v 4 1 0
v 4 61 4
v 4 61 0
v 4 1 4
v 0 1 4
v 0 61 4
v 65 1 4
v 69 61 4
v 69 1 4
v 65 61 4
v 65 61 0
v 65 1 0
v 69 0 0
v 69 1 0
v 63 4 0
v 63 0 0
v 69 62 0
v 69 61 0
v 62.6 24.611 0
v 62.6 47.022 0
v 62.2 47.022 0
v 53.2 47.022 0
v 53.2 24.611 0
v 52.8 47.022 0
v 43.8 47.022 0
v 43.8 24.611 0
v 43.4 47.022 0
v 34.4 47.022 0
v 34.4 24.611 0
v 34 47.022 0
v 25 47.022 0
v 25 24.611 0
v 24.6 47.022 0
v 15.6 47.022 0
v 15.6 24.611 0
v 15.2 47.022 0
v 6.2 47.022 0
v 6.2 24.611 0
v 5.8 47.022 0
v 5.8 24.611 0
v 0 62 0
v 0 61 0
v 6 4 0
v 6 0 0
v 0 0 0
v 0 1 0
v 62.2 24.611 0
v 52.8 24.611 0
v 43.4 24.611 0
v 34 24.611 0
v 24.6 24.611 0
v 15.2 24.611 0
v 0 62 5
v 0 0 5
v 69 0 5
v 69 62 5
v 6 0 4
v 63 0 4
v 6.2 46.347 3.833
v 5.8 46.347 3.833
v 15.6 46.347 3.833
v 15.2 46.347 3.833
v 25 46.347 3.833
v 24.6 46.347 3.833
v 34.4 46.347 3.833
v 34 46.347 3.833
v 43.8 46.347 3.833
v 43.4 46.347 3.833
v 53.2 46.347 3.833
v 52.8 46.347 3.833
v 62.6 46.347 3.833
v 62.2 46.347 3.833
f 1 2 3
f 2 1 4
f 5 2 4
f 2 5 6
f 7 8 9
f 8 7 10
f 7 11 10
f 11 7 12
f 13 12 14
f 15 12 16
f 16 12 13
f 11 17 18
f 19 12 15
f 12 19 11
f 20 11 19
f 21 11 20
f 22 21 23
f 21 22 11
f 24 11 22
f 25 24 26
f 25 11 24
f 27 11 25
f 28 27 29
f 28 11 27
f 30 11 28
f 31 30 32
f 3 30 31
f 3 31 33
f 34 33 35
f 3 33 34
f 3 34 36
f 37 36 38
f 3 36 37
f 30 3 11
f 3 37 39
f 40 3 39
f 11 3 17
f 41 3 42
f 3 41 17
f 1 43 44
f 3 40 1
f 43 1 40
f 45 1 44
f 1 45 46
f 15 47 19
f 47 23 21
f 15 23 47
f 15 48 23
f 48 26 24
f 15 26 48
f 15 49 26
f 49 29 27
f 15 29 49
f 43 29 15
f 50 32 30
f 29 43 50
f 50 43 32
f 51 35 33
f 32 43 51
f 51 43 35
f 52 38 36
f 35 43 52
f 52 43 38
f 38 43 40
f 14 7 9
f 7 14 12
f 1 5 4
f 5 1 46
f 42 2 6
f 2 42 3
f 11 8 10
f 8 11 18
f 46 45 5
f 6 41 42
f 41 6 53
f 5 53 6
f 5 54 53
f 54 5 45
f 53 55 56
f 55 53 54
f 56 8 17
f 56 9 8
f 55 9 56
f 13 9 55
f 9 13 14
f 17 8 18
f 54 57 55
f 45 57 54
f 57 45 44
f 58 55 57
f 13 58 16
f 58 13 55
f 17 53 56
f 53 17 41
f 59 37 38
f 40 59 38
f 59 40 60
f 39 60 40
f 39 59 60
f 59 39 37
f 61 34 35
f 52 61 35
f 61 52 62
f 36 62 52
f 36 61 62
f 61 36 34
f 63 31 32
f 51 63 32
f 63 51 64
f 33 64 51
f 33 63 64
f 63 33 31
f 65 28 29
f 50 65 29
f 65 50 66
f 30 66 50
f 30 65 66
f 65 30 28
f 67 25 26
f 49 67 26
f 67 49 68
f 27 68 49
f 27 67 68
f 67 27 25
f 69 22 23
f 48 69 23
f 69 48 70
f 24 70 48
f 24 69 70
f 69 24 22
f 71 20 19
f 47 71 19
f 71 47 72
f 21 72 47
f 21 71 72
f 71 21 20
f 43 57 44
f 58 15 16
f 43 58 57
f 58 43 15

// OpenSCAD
// file: libspeaker.scad
//libspeaker
libversion = "0.0.1";
echo("Using libspeaker version: ", libversion);
module mounting_holes(speaker_num_holes, speaker_hole_d, screw_d, box_thick){
    for ( i = [0 : speaker_num_holes] ){
        rotate([0,360/speaker_num_holes*i,0])
            translate([speaker_hole_d/2,0,0])
                rotate([90,0,0])
                    cylinder(d=screw_d, h=box_thick);
    }
}


module screw_form(screw_d, screwhead_d, screwhead_h, box_thick){
    union(){
        cylinder(d=screw_d, h=box_thick);
        cylinder(d=screwhead_d+1, h=screwhead_h);
    }
}

module speaker_cutout(speaker_cutout_d, speaker_flange_d, speaker_flange_h, box_thick){
    translate([0,speaker_flange_h-box_thick,0])rotate([90,0,0])
        cylinder(d=speaker_flange_d, h=speaker_flange_h);
    rotate([90,0,0])
        cylinder(d=speaker_cutout_d, h=box_thick);
}

module screw_cutout(screw_d, screw_l, screwhead_h, nut_d, nut_thick, box_thick, bevel_depth, full_slot = true){
    hex_size = 2 * nut_d/sqrt(3);
    union(){
        //screw cutout
        translate([0,0,0])
            cylinder(d=screw_d, h=screw_l-(box_thick-bevel_depth-screwhead_h)+1);
        //screw slot
        if (full_slot) {
        translate([0,-screw_d/2,0])
            cube([box_thick/2,screw_d,screw_l/4+nut_thick]);
        }
        //nut slot
        translate([0,-nut_d/2,screw_l/4])
            #cube([box_thick/2,nut_d,nut_thick]);
        //nut cutout
        translate([0,0,screw_l/4])
            cylinder(d=hex_size, h=nut_thick,$fn=6);
    }
}

module bevel(box_width, box_height, wall_thick, bevel_depth) {
    difference() {
        cube([box_width, box_height, bevel_depth]);
        translate([wall_thick/2, wall_thick/2, 0])
            cube([box_width-wall_thick, box_height-wall_thick, bevel_depth]);
    }
}

module speaker_volume(height, width, depth) {
    echo("Enclosure volume: ", height*width*depth/1000000, " liters");
}
// main file
// Parametric Film Sliter
// 2021 Logan E Brown
// <thinkbrown@96west.net>

// Entirely for screwform stuff
use <libspeaker.scad>;
$fn=64;
// fairly arbitrary, 
// length should probably be at least film width to keep things in line
// height was randomly chosen, changing it will likely require adjusting the blade angle
slitter_height = 30;
slitter_length = 60;
wall_thickness = 4;
// Definition for screw/nut dimensions
m4_clearance_d = 4.5;
m4_head_clearance_d = 7;
m4_head_clearance_h = 4;
m4_nut_d = 7.1;
m4_nut_h = 4.5;
// math for nut holes.
m4_nut_flats = 2 * m4_nut_d/sqrt(3);
// Definition for blade dimensions
// Note that a safety razor blade is actually about 0.15mm thick,
// but we need enough space to slide it in and then apply pressure.
blade_thickness = 0.4;
blade_height = 22;
blade_width = 43;
blade_angle = 10;
// offset of the mounting holes in the blade.
// This model assumes the blade is symmetrical and both mounting
// holes are on center line
blade_hole = 9;
blade_offset = blade_height*sin(blade_angle);
film_thickness = 0.7;
clip_thickness = 1;

//16mm cuts
16mm_to_minox = [6.6];
16mm_width = 16;
//35mm cuts
35mm_to_16_and_minox = [4.8, 20.8, 30.2];
35mm_to_minox = [8.1, 17.5, 26.9];
35mm_width = 35;
//120 cuts
120_to_16_and_minox = [2, 18, 34, 50, 59.4];
120_to_minox = [2, 11.4, 20.8, 30.2, 39.6, 49, 58.4];
120_width = 61;

// For slitting 16mm film to minox (approx 9.4mm) - TESTED
//plate(16mm_width, 16mm_to_minox);
// For slitting 35mm film to 16mm and minox - TESTED
//plate(35mm_width, 35mm_to_16_and_minox);
// For slitting 35mm film to minox
//plate(35mm_width, 35mm_to_minox);

// For slitting 120 film to 3 16mm strips and a minox strip. Waste not, want not.
//plate(120_width, 120_to_16_and_minox);
// for slitting 120 film to no less than 6 strips of minox
//plate(120_width, 120_to_minox);

cap(120_width, 120_to_minox);

module plate(film_width, widths){
    slitter(film_width, widths);
    translate([film_width+2*wall_thickness+20,0,0])
        cap(film_width, widths);
}

module slitter(film_width, widths){
    slitter_width = film_width+2*wall_thickness;
    difference(){
        cube([film_width+2*wall_thickness, slitter_length, slitter_height]);
        translate([wall_thickness, 0, slitter_height-wall_thickness-film_thickness])
            cube([film_width, slitter_length, wall_thickness+film_thickness]);
        for (width = widths){
            translate([wall_thickness+width-blade_thickness/2,wall_thickness,0])
                hull(){
                    translate([0,sin(blade_angle)*blade_height,0])
                        rotate([blade_angle,0,0])
                            #cube([blade_thickness, blade_width, blade_height]);
                    translate([0,sin(blade_angle)*(blade_height+(sin(blade_angle)*blade_width)),-sin(blade_angle)*blade_width])
                        rotate([blade_angle,0,0])
                            cube([blade_thickness, blade_width, sin(blade_angle)*blade_width]);
                }
                translate([wall_thickness+width,0,0])
                    cube([blade_thickness, blade_width, blade_height]);
        }
        rotate([blade_angle,0,0])
            translate([0, blade_hole+sin(blade_angle)*blade_width, blade_height/2])
                rotate([0,90,0])
                    union(){
                        screw_form(m4_clearance_d, m4_head_clearance_d, m4_head_clearance_h, slitter_width);
                        #translate([0,0,slitter_width-m4_nut_h])
                            cylinder(d=m4_nut_flats, h=m4_nut_h, $fn=6);
                    }
        rotate([blade_angle,0,0])
            translate([0, blade_width-blade_hole+sin(blade_angle)*blade_width, blade_height/2])
                rotate([0,90,0])
                    union(){
                        screw_form(m4_clearance_d, m4_head_clearance_d, m4_head_clearance_h, slitter_width);
                        #translate([0,0,slitter_width-m4_nut_h])
                            cylinder(d=m4_nut_flats, h=m4_nut_h, $fn=6);
                    }
    }
}

module cap(film_width, widths){
    slitter_width = film_width+2*wall_thickness;
    difference(){
        union(){
            translate([wall_thickness,clip_thickness,0])
                cube([film_width, slitter_length, wall_thickness]);
            translate([0,clip_thickness,wall_thickness])
                cube([film_width+2*wall_thickness, slitter_length, 1]);
            cube([film_width+2*wall_thickness,clip_thickness,wall_thickness+clip_thickness]);
            translate([0,slitter_length+clip_thickness,0])
                cube([film_width+2*wall_thickness,clip_thickness,wall_thickness+clip_thickness]);
        }
        translate([3*wall_thickness/2,0,-wall_thickness])
            rotate([45,0,0])
                cube([film_width-wall_thickness, wall_thickness*sqrt(2), wall_thickness*sqrt(2)]);
        translate([wall_thickness, 0, slitter_height-wall_thickness-film_thickness])
            cube([film_width, slitter_length, wall_thickness+film_thickness]);
        for (width = widths){
            translate([wall_thickness+width-blade_thickness/2,wall_thickness,-slitter_height+film_thickness+wall_thickness])
                translate([0,sin(blade_angle)*blade_height,0])
                    rotate([blade_angle,0,0])
                        cube([blade_thickness, blade_width, blade_height]);
        }
    }
}
